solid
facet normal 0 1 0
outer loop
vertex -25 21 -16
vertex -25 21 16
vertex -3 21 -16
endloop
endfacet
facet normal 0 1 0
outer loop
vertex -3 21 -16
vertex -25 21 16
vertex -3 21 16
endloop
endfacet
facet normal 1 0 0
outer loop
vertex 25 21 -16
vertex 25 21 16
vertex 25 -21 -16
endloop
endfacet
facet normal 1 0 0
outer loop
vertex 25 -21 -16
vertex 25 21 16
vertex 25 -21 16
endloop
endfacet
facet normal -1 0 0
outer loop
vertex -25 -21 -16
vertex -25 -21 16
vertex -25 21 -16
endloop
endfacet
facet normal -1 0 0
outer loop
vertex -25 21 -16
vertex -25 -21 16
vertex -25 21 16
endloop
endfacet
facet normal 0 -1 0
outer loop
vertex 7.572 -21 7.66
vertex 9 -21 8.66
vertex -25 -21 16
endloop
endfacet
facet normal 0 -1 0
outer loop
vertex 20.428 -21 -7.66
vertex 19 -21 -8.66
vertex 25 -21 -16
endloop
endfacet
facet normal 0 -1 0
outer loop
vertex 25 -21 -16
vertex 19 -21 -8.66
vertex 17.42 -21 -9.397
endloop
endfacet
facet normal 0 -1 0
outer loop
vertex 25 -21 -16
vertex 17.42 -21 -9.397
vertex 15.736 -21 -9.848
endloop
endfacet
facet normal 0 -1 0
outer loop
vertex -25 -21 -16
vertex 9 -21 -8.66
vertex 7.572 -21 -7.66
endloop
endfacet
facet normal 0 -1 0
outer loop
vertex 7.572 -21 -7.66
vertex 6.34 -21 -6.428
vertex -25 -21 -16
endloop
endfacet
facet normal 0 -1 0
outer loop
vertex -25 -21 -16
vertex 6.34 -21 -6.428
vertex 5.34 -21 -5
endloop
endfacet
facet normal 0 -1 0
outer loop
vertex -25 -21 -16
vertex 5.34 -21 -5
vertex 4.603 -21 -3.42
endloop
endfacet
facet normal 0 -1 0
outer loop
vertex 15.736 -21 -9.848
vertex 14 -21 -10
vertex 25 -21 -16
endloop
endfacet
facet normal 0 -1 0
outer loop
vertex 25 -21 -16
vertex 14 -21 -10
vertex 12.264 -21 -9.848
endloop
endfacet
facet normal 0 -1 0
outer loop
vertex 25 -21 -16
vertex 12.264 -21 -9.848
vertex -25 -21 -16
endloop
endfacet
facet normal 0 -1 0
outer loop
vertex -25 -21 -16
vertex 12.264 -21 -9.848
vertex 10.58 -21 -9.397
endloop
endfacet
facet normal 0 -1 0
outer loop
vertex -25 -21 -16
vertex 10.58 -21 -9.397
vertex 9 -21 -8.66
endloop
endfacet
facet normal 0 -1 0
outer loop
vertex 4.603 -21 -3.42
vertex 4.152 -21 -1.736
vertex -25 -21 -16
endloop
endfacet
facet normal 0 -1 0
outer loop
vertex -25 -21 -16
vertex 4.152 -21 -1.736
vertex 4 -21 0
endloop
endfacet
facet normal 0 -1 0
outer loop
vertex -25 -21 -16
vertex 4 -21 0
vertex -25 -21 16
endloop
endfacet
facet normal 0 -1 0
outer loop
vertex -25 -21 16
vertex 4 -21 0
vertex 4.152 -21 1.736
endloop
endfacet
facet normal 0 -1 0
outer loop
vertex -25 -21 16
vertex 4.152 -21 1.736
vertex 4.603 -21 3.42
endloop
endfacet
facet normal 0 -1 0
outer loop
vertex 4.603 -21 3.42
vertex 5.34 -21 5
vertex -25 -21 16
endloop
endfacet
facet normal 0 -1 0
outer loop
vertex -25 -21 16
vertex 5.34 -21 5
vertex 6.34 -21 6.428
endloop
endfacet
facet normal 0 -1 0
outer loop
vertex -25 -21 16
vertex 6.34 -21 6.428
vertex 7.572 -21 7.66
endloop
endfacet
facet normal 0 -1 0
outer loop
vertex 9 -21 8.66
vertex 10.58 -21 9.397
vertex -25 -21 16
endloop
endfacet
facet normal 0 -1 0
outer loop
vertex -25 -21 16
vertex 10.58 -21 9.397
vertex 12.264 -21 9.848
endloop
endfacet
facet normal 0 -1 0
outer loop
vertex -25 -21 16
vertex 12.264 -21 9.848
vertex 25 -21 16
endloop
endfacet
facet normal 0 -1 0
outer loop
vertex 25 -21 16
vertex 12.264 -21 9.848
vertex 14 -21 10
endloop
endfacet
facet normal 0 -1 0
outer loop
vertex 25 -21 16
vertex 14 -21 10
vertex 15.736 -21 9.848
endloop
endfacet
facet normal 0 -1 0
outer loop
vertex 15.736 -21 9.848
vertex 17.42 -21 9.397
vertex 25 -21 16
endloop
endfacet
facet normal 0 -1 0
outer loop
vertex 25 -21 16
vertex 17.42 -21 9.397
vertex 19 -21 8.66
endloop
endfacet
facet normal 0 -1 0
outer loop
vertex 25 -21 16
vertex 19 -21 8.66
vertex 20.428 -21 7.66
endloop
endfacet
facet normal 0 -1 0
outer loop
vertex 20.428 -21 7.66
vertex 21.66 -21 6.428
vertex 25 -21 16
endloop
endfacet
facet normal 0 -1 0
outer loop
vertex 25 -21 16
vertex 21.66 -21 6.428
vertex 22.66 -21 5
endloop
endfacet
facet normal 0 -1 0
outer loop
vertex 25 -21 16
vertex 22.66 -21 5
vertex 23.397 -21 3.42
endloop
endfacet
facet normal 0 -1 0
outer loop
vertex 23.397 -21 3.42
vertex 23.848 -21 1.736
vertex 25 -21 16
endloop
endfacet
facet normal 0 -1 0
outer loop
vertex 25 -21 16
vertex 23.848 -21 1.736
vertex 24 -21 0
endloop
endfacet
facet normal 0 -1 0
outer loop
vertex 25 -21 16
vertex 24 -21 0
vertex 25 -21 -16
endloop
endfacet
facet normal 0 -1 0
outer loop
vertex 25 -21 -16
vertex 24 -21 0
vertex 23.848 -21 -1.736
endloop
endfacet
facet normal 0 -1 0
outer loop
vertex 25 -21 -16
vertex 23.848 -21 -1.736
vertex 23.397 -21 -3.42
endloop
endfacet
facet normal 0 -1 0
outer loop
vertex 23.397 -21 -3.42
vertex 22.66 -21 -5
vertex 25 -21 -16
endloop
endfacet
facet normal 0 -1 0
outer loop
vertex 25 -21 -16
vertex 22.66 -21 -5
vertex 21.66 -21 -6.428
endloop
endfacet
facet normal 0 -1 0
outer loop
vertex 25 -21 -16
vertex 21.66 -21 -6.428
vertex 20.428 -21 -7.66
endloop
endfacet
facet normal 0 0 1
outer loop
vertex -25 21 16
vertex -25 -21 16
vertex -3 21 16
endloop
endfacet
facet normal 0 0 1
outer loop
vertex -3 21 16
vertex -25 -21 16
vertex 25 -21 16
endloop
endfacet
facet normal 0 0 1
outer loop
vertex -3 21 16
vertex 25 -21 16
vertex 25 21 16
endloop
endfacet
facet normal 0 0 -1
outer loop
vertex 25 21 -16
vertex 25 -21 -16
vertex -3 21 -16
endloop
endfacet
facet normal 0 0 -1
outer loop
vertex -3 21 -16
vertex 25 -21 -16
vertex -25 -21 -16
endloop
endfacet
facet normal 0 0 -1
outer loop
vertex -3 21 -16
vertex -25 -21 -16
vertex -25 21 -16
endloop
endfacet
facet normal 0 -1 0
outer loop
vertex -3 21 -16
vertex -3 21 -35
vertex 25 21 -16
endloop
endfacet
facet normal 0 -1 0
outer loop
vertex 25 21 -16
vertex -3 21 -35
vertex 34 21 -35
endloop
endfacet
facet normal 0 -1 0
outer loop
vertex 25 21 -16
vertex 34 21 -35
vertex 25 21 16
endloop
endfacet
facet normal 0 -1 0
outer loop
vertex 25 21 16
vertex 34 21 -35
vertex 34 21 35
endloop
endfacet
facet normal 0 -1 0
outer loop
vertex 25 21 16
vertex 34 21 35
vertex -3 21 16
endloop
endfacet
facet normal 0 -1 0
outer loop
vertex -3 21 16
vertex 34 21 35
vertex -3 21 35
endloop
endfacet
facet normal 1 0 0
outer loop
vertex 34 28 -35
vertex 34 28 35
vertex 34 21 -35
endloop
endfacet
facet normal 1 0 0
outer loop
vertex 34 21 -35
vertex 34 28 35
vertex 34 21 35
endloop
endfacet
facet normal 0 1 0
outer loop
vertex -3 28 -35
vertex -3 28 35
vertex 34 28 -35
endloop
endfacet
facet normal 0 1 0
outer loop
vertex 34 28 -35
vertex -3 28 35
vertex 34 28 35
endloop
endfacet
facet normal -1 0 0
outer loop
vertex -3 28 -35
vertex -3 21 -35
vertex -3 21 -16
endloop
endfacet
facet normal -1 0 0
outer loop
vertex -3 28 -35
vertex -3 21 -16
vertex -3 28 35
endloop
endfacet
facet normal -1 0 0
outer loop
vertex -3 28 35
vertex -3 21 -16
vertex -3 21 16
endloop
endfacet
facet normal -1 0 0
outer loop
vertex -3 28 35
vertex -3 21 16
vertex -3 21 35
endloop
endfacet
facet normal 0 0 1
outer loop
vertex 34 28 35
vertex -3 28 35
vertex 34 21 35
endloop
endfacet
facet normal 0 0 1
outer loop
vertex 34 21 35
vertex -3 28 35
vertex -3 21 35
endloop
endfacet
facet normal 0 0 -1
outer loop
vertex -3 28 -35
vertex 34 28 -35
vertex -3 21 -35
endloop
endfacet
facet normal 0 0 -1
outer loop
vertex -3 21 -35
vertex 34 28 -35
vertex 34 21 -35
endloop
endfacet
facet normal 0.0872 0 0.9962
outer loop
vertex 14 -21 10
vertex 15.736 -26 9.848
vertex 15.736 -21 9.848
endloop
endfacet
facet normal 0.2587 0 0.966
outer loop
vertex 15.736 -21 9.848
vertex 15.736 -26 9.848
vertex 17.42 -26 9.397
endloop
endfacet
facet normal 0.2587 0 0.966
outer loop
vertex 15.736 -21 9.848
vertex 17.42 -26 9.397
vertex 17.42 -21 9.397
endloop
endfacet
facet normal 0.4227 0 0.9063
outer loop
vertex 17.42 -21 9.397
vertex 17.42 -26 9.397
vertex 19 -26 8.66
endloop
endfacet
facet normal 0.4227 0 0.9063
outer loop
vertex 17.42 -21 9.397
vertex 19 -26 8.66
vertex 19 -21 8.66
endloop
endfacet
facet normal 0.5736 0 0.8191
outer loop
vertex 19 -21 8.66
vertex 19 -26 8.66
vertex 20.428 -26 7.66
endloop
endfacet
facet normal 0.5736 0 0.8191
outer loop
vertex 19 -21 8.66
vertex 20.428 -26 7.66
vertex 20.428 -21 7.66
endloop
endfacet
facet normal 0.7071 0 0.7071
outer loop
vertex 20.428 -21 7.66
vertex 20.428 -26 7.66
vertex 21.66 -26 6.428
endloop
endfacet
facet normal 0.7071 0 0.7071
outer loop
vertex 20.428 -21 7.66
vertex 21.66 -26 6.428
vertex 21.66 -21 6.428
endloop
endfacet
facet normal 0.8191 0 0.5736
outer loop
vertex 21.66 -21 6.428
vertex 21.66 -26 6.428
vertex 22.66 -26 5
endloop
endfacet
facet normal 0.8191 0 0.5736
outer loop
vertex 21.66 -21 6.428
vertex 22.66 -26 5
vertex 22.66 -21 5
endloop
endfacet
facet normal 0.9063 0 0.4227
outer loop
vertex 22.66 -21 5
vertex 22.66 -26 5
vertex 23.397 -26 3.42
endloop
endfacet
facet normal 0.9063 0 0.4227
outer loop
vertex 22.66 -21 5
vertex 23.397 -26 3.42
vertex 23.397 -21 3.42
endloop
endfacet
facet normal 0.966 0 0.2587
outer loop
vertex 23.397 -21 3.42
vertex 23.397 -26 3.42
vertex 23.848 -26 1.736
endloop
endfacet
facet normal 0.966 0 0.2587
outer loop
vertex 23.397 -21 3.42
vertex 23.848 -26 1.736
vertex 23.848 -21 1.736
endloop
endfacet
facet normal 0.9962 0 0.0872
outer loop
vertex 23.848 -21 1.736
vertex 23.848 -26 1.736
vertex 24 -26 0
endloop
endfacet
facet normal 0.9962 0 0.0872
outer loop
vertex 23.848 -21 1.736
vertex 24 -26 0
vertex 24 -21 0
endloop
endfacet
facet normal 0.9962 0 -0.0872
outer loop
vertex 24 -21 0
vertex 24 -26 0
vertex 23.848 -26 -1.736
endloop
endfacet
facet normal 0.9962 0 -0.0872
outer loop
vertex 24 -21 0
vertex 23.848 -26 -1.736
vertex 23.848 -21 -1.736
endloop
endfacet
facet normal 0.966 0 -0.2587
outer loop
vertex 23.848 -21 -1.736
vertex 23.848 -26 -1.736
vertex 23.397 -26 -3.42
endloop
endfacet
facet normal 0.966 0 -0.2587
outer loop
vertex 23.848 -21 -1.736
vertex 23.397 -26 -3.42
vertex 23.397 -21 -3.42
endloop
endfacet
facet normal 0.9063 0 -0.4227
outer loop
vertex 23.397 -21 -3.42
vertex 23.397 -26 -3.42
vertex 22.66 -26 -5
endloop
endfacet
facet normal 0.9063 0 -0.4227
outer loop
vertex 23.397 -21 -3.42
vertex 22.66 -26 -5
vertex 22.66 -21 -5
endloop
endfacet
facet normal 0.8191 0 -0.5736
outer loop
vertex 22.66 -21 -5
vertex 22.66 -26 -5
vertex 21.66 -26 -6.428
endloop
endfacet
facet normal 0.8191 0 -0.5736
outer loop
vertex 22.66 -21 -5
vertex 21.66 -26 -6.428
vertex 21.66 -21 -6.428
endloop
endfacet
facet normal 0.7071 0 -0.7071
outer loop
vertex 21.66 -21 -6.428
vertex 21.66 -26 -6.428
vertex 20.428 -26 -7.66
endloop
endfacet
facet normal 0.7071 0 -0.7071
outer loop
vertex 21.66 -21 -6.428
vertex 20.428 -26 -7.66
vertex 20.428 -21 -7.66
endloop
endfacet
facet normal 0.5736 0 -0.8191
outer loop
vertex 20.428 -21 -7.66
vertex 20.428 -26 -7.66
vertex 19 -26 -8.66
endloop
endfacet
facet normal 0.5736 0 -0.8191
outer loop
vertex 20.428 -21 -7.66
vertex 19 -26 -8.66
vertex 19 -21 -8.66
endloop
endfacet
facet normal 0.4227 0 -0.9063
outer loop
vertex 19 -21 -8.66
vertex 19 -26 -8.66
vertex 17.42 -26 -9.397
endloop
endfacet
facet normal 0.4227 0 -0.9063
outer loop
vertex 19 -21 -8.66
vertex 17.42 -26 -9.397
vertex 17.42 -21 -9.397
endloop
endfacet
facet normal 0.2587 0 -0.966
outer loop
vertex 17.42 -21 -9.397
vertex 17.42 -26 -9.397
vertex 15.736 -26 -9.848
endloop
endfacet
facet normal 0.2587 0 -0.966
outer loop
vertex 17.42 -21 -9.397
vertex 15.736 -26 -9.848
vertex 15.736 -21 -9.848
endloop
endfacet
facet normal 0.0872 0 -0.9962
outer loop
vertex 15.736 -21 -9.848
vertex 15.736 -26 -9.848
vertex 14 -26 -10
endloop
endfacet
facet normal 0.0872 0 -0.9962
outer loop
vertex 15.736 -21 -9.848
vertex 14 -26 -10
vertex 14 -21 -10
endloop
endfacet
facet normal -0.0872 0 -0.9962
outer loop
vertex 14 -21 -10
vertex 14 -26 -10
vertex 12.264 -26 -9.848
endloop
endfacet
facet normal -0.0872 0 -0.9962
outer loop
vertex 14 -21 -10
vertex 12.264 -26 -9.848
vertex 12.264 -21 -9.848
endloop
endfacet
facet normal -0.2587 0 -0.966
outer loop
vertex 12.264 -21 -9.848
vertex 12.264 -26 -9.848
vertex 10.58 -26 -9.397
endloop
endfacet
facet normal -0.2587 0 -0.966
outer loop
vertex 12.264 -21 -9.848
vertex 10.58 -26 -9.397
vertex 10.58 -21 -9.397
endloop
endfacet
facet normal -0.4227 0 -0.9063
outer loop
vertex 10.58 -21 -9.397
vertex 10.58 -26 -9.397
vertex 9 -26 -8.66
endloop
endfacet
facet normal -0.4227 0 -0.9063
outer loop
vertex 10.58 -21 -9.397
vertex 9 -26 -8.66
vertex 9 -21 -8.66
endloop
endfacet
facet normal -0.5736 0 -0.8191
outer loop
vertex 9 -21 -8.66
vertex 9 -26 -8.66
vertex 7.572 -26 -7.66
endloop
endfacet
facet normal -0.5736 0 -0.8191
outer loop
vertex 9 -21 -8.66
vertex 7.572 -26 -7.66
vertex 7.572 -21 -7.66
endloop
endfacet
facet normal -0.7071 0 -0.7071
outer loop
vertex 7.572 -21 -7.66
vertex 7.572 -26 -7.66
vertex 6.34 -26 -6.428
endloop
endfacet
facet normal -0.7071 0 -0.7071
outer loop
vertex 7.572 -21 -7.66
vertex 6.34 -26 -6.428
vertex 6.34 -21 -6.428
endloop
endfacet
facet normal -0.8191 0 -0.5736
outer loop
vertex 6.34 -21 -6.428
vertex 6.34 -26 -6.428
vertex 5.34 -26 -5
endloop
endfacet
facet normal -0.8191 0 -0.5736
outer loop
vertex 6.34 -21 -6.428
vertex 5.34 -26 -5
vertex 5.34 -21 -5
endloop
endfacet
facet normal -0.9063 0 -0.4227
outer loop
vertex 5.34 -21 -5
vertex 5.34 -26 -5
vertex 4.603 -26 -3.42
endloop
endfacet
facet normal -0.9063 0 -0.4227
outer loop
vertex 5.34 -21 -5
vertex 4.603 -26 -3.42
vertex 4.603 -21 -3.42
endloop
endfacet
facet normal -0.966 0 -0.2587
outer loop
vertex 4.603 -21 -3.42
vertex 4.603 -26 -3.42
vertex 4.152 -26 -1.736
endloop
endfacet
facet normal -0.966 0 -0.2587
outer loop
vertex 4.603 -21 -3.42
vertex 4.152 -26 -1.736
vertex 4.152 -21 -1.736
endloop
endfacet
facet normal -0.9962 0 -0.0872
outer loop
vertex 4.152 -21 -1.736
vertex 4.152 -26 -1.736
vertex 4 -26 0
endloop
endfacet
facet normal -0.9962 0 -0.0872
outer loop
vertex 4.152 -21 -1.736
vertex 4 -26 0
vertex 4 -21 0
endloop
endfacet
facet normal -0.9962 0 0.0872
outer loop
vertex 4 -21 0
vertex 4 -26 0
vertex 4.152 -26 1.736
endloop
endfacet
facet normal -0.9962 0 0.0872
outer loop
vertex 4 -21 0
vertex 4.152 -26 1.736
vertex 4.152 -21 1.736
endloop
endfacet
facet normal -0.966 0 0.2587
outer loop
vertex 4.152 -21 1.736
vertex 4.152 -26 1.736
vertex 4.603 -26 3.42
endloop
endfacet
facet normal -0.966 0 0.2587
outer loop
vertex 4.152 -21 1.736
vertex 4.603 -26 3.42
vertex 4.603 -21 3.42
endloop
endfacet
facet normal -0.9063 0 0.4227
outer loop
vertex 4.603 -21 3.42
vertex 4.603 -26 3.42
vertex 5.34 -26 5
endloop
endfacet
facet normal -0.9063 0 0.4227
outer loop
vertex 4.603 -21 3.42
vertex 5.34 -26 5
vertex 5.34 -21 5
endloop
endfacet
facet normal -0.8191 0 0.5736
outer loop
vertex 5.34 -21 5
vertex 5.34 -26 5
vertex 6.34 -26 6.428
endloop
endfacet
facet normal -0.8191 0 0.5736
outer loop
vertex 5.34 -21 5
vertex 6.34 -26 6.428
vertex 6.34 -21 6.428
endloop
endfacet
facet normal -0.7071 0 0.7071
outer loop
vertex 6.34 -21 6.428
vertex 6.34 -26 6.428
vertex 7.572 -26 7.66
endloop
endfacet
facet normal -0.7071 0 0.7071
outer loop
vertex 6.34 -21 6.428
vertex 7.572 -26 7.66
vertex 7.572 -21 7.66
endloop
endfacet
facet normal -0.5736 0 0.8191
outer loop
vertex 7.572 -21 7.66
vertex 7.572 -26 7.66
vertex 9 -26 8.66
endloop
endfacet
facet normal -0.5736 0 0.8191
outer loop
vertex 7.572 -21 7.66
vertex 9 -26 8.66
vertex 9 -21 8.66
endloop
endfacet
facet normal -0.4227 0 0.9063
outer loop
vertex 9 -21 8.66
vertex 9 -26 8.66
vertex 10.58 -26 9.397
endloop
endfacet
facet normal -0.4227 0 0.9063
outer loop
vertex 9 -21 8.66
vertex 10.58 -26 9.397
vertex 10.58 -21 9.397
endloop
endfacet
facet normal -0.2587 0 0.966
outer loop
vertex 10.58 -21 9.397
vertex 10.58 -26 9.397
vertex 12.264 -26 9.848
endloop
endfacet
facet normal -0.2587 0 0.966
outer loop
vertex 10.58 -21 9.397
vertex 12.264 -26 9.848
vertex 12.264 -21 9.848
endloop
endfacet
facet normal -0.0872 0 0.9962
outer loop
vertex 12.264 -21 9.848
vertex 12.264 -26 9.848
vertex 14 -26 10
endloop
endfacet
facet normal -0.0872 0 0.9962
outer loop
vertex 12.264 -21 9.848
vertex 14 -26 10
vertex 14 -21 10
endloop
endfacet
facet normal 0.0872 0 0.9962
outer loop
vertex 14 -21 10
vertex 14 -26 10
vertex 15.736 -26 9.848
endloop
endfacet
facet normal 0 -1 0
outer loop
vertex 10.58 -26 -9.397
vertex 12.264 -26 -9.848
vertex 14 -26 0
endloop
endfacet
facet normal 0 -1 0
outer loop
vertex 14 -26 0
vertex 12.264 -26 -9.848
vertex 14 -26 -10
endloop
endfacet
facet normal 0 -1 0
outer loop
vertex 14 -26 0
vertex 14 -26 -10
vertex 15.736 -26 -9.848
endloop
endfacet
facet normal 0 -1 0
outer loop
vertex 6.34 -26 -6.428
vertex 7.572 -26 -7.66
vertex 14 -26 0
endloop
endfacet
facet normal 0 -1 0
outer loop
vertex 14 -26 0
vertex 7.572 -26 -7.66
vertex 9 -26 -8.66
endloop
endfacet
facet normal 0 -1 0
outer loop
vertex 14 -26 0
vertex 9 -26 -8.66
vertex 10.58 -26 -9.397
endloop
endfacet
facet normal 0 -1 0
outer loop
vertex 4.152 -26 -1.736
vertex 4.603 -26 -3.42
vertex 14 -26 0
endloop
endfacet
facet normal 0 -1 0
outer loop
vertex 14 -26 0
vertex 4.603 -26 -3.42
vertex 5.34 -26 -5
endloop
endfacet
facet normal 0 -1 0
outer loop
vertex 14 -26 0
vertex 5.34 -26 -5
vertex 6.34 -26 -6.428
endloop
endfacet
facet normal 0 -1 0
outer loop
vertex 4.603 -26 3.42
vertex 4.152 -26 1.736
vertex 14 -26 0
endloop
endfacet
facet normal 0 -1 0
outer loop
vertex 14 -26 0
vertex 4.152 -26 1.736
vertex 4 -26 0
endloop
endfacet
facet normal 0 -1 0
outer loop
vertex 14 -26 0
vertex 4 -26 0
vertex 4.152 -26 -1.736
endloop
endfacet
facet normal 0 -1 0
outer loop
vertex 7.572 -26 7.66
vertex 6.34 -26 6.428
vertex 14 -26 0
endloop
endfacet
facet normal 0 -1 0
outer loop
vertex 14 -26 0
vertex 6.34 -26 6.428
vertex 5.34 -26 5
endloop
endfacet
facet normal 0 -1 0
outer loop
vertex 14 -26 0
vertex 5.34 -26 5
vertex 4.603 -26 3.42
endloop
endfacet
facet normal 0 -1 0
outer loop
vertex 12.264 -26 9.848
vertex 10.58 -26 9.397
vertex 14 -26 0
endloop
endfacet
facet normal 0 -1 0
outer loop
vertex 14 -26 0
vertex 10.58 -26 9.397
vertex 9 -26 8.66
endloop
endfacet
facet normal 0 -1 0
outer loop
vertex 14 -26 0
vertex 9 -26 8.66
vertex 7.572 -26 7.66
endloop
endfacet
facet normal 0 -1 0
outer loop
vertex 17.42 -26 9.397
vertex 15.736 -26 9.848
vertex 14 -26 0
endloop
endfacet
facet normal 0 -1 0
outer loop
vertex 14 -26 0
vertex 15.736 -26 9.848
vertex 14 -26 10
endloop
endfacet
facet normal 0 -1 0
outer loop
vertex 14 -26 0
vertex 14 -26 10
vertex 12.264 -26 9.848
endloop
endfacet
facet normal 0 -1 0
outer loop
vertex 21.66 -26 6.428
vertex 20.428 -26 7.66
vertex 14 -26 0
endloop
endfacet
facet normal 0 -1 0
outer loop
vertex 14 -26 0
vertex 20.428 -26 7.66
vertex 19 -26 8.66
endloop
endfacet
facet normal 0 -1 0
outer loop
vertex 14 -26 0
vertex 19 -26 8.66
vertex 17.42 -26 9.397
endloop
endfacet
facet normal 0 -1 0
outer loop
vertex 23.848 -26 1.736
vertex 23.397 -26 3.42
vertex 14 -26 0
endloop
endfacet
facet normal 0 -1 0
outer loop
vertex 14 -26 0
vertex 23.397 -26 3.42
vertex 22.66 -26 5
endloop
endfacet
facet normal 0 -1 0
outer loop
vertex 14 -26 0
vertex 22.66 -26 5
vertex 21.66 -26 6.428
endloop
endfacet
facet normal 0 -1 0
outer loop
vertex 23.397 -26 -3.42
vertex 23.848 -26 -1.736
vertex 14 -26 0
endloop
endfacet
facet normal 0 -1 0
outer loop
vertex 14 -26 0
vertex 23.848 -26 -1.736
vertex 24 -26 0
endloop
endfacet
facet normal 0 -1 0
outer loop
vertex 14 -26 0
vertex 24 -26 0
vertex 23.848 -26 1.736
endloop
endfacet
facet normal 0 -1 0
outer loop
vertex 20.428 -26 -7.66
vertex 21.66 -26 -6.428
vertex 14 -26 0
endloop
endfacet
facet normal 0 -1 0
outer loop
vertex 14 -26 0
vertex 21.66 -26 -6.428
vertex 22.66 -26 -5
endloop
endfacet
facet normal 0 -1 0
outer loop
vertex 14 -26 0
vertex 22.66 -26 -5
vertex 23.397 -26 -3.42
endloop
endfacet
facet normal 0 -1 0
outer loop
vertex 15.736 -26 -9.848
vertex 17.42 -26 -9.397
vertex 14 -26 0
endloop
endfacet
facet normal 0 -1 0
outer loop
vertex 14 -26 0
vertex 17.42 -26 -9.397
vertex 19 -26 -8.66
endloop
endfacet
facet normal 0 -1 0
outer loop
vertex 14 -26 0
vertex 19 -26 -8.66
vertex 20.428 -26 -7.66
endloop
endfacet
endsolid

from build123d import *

# Parameters (mm, degrees)
BOSS_EXTRUDE1_DEPTH = 16
BOSS_EXTRUDE2_DEPTH = 16
BOSS_EXTRUDE3_DEPTH = 35
BOSS_EXTRUDE4_DEPTH = 35
SKETCH3_R           = 10
BOSS_EXTRUDE5_DEPTH = 5


with BuildPart() as part:
    # Sketch1 → Boss-Extrude1 (new body)
    with BuildSketch(Plane.XY):
        Polygon((-3, 21), (-25, 21), (-25, -21), (25, -21), (25, 21), align=None)
    extrude(amount=BOSS_EXTRUDE1_DEPTH)

    # Sketch1<3> → Boss-Extrude2 (add)
    with BuildSketch(Plane.XY):
        Polygon((-3, 21), (-25, 21), (-25, -21), (25, -21), (25, 21), align=None)
    extrude(amount=-BOSS_EXTRUDE2_DEPTH)

    # Sketch1<4> → Boss-Extrude3 (add)
    with BuildSketch(Plane.XY):
        Polygon((-3, 28), (-3, 21), (25, 21), (34, 21), (34, 28), align=None)
    extrude(amount=BOSS_EXTRUDE3_DEPTH)

    # Sketch1<5> → Boss-Extrude4 (add)
    with BuildSketch(Plane.XY):
        Polygon((-3, 28), (-3, 21), (25, 21), (34, 21), (34, 28), align=None)
    extrude(amount=-BOSS_EXTRUDE4_DEPTH)

    # Sketch3 → Boss-Extrude5 (add)
    with BuildSketch(Plane.XZ.offset(21)):
        with Locations((14, 0)):
            Circle(SKETCH3_R)
    extrude(amount=BOSS_EXTRUDE5_DEPTH)


solid = part.part
